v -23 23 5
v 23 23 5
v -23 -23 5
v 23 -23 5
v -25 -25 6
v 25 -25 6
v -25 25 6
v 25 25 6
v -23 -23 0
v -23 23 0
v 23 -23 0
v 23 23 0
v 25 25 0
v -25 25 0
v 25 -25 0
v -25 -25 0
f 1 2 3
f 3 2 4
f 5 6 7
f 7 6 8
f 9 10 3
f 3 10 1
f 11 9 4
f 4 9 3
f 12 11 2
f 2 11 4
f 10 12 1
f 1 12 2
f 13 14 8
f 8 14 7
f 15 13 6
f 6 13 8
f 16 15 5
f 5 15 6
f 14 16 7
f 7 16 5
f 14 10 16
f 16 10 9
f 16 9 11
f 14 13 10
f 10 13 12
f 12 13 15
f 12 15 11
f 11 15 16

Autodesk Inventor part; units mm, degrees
ref_plane "YZ Plane" through (0, 0, 0) normal (1, 0, 0) x (0, 1, 0)
ref_plane "XZ Plane" through (0, 0, 0) normal (0, 1, 0) x (-1, 0, 0)
ref_plane "XY Plane" through (0, 0, 0) normal (0, 0, 1) x (1, 0, 0)
sketch "스케치1" plane through (0, 0, 0) normal (0, 0, 1) x (1, 0, 0)
  line L0 (25, 25) -> (-25, 25) projected
  line L1 (-25, 25) -> (-25, -25) projected
  line L2 (-25, -25) -> (25, -25) projected
  line L3 (25, -25) -> (25, 25) projected
  line L4 (-23, 23) -> (23, 23)
  line L5 (23, 23) -> (23, -23)
  line L6 (23, -23) -> (-23, -23)
  line L7 (-23, -23) -> (-23, 23)
  point P0 (0, 0)
  dimension "d0" = 2
extrude "돌출1" add sketch "스케치1" along normal blind 5
sketch "스케치2" plane through (0, 0, 5) normal (0, 0, 1) x (1, 0, 0)
  line L0 (25, 25) -> (-25, 25) projected
  line L1 (-25, 25) -> (-25, -25) projected
  line L2 (-25, -25) -> (25, -25) projected
  line L3 (25, -25) -> (25, 25) projected
  point P0 (0, 0)
extrude "돌출2" add sketch "스케치2" along normal blind 1
properties part number "light box_3D 인쇄"
